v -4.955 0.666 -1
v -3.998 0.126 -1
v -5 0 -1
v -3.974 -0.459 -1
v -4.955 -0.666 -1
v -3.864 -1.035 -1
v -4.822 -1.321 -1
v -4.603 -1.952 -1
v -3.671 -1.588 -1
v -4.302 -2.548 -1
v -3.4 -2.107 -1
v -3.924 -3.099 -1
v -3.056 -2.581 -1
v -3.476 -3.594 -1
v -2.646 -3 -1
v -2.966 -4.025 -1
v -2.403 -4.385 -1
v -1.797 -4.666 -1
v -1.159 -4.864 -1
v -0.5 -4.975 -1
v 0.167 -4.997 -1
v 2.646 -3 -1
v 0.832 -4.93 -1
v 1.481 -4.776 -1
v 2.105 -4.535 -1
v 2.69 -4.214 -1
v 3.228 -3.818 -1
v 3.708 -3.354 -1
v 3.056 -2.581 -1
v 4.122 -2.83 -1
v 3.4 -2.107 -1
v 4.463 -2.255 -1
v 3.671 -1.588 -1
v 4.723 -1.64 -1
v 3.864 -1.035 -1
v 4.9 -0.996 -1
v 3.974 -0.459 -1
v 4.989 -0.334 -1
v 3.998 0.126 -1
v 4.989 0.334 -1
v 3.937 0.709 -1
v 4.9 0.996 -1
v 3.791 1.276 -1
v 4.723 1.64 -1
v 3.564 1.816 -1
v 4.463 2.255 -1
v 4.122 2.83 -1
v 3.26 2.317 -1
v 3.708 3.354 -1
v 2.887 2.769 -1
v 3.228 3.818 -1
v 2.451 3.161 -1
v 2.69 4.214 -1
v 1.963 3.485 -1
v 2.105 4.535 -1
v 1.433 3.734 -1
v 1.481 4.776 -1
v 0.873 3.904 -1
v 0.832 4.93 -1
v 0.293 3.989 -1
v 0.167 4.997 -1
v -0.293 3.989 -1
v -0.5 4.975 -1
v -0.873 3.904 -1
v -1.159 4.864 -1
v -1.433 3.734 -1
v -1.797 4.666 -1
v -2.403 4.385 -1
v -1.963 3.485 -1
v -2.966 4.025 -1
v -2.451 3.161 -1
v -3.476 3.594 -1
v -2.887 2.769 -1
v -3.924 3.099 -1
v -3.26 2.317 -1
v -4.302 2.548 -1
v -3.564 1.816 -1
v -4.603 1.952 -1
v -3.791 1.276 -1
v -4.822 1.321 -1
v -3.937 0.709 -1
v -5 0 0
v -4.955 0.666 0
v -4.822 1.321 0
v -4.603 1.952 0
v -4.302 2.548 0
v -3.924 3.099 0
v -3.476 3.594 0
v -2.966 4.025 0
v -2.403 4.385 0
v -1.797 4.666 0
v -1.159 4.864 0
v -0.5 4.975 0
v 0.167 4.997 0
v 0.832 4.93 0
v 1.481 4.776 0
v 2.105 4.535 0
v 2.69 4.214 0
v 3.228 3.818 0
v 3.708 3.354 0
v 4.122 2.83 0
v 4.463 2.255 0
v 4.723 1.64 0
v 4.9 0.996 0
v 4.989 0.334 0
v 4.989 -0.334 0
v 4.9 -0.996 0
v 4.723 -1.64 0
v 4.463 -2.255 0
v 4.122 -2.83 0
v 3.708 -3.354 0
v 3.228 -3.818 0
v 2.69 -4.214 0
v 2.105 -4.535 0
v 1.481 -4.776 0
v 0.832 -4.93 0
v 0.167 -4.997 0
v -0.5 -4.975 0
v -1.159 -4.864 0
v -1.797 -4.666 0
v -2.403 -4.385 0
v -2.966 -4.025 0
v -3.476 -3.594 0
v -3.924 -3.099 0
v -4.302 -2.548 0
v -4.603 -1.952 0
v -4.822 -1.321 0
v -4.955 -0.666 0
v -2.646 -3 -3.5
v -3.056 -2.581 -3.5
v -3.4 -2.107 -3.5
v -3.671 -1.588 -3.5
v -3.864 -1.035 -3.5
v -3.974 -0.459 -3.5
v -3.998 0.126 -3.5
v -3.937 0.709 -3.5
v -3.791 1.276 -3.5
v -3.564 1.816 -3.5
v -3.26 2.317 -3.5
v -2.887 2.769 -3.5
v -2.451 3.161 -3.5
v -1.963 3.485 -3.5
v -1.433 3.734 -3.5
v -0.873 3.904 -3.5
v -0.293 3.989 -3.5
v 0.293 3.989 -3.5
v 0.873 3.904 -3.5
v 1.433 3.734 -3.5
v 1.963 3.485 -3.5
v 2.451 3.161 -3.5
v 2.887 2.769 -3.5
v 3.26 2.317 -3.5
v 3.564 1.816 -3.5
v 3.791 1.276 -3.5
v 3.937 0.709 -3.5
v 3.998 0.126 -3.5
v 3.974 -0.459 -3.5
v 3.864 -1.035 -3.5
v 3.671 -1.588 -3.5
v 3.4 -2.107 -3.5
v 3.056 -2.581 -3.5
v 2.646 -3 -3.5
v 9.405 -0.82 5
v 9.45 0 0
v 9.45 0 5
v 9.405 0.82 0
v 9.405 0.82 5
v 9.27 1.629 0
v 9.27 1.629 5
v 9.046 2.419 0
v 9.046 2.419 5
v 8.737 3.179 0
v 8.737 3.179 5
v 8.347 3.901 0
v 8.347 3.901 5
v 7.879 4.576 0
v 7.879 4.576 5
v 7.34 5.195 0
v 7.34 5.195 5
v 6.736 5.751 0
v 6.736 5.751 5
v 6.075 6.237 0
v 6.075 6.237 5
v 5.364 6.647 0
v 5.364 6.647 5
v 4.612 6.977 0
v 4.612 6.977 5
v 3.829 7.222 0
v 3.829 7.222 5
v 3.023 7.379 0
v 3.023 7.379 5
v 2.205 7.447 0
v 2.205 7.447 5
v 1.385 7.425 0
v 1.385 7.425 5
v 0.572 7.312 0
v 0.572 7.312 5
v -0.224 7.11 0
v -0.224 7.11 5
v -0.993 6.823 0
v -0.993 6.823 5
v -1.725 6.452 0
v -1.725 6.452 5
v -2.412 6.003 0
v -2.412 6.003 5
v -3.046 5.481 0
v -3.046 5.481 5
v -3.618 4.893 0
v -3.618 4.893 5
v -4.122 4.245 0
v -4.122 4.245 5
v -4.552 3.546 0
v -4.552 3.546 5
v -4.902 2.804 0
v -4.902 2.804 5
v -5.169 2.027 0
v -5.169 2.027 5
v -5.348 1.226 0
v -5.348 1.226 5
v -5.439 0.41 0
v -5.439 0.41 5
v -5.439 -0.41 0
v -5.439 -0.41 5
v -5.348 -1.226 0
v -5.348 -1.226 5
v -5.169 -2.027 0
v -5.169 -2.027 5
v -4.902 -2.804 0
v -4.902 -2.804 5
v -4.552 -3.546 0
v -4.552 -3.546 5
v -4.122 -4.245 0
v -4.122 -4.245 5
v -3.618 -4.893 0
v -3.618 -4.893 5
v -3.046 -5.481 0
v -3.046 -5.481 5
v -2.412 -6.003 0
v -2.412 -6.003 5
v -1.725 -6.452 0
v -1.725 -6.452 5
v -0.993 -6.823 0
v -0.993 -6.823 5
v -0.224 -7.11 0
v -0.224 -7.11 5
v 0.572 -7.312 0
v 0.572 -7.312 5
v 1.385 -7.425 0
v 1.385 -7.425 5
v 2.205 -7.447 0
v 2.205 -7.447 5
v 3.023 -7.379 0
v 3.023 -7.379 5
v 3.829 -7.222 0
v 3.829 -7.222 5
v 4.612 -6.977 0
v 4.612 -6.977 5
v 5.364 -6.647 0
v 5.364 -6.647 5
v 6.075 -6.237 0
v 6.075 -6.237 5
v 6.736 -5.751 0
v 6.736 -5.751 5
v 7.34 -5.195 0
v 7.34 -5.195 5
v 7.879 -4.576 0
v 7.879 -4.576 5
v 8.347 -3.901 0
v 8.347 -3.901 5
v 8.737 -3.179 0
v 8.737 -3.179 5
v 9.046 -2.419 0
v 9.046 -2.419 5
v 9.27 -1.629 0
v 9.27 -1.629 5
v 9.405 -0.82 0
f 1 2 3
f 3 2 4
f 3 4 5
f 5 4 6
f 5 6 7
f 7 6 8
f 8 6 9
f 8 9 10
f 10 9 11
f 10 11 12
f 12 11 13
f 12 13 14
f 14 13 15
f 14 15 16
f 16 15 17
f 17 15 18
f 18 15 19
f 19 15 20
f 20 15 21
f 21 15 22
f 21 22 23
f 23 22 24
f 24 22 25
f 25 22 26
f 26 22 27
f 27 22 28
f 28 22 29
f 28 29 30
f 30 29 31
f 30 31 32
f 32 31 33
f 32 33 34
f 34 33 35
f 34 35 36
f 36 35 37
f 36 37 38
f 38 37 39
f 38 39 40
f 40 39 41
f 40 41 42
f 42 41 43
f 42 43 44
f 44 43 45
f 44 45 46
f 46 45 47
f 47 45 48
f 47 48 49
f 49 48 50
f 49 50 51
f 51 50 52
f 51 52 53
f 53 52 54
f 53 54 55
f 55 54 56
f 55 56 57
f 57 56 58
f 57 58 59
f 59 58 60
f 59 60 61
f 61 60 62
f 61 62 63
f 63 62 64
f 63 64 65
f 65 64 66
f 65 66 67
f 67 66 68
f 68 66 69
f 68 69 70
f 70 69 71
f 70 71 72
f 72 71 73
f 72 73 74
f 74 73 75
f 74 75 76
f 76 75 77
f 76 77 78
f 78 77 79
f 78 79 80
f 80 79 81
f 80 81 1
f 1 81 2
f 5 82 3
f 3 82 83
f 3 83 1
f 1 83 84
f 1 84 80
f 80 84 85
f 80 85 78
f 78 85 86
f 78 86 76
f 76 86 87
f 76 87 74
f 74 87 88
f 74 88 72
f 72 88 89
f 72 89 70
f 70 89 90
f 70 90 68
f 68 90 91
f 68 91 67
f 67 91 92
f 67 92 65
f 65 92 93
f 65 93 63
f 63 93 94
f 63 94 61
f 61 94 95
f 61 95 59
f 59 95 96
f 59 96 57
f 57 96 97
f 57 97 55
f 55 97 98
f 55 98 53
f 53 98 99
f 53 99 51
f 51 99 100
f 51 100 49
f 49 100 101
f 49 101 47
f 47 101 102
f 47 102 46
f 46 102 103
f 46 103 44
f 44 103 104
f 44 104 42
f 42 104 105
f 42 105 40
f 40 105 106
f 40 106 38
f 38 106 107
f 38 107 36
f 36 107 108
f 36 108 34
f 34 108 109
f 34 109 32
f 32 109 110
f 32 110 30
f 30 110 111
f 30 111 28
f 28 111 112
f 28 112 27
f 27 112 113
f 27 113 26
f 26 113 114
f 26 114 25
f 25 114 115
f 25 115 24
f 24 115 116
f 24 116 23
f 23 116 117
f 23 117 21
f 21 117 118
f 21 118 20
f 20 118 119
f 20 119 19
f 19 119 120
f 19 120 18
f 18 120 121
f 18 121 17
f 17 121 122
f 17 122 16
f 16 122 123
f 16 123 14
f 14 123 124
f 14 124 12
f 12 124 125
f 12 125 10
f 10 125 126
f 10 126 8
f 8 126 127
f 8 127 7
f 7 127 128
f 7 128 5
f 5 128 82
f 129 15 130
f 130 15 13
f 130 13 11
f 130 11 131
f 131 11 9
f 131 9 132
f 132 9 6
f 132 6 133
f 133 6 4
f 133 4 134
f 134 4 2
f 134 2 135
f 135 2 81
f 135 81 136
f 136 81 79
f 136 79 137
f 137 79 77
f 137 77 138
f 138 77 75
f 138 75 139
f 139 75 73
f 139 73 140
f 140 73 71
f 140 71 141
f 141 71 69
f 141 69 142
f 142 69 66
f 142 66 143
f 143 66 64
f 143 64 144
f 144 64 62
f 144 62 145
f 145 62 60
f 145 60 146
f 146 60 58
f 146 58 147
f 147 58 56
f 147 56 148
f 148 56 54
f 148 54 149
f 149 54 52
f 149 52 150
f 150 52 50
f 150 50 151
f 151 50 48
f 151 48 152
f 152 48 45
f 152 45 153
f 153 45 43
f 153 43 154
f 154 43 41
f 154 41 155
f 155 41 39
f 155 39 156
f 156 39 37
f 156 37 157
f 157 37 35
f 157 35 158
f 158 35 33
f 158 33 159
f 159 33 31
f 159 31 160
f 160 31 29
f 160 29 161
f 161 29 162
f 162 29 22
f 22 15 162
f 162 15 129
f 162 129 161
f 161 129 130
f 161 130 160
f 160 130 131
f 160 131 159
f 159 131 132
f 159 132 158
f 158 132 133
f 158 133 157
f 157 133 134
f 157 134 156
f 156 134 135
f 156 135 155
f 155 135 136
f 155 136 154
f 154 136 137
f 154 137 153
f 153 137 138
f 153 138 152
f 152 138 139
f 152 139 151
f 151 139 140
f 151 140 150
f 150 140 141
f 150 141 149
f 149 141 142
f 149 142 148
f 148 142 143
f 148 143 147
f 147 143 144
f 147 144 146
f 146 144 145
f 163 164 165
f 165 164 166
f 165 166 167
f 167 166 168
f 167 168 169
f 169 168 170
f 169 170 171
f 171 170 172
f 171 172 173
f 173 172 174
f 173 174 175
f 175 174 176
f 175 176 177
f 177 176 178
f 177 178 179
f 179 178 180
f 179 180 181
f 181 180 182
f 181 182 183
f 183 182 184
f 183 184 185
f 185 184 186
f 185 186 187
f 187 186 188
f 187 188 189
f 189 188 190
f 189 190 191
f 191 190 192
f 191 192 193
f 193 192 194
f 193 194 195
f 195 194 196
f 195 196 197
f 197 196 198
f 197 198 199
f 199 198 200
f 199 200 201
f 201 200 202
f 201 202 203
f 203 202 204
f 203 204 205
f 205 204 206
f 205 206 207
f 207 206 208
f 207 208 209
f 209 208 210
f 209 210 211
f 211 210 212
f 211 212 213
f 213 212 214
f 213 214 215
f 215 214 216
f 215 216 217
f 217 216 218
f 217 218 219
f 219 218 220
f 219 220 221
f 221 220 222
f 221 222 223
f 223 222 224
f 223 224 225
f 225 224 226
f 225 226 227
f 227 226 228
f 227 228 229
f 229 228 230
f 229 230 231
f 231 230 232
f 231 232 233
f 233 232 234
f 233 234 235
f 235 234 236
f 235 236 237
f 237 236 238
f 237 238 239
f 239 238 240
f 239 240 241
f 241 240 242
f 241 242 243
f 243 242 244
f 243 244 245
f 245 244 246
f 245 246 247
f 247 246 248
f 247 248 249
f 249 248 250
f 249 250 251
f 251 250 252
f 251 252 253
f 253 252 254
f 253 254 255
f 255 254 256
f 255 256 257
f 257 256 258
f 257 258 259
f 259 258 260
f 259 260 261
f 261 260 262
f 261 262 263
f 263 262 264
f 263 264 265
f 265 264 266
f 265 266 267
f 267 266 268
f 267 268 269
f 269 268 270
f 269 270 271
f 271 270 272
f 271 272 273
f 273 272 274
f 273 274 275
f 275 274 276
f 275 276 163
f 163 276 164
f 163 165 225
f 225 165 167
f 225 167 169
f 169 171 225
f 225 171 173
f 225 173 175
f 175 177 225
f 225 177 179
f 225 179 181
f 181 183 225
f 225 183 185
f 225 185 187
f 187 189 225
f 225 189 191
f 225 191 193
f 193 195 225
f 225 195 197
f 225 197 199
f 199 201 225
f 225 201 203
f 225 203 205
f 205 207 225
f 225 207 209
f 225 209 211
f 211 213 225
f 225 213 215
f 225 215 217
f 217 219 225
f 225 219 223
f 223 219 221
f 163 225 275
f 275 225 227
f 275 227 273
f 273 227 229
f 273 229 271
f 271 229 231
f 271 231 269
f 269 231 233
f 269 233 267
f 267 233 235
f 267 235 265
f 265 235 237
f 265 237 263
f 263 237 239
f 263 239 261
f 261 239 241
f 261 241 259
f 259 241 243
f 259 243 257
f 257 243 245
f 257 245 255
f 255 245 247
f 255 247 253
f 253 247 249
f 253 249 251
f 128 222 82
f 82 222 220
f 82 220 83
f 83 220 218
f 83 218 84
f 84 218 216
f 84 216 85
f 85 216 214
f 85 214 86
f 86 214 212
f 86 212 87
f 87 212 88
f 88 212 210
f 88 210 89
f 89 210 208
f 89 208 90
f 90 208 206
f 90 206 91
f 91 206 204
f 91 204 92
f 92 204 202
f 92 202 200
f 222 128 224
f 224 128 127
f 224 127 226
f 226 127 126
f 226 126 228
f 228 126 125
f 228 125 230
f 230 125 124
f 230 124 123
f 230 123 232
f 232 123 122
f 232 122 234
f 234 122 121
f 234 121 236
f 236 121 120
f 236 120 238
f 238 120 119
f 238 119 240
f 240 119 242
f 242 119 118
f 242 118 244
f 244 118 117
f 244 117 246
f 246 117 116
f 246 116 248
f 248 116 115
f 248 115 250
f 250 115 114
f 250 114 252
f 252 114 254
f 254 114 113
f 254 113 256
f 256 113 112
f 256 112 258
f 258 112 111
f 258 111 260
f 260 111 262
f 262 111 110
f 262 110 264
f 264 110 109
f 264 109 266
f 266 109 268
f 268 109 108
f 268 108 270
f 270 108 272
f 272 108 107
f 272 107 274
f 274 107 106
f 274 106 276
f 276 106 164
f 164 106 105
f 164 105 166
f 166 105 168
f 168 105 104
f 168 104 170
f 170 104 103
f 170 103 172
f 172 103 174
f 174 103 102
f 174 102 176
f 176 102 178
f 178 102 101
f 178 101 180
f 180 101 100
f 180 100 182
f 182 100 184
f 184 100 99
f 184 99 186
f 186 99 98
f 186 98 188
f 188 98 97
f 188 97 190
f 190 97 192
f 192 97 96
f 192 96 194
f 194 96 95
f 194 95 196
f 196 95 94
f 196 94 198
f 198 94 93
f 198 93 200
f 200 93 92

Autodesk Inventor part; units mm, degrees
ref_plane "YZ Plane" through (0, 0, 0) normal (1, 0, 0) x (0, 1, 0)
ref_plane "XZ Plane" through (0, 0, 0) normal (0, 1, 0) x (-1, 0, 0)
ref_plane "XY Plane" through (0, 0, 0) normal (0, 0, 1) x (1, 0, 0)
sketch "스케치1" plane through (0, 0, 0) normal (0, 0, 1) x (1, 0, 0)
  circle A0 centre (2, 0) radius 7.45
  line L0 (0, 0) -> (2, 0)
  circle A1 centre (0, 0) radius 4
  line L1 (-2.6458, -3) -> (2.6458, -3)
  dimension "d1" = 14.9
  dimension "d2" = 2
  dimension "d3" = 8
  dimension "d4" = 3
extrude "돌출1" add sketch "스케치1" along normal blind 5 contours A0 | A1 L1 | L1 A1
extrude "돌출2" add sketch "스케치1" against normal blind 3.5 contours A1 L1 picked at (1.0912, -0.393)
sketch "스케치3" plane through (2, 0, 0) normal (0, 0, -1) x (-1, 0, 0)
  arc A0 (4.6458, -3) -> (-0.6458, -3) centre (2, 0) ccw construction
  line L0 (-0.6458, -3) -> (4.6458, -3) construction
  circle A1 centre (2, 0) radius 5
  dimension "d12" = 10
extrude "돌출3" add sketch "스케치3" along normal blind 1
properties part number "감속기어1 - 상단 편심축"
